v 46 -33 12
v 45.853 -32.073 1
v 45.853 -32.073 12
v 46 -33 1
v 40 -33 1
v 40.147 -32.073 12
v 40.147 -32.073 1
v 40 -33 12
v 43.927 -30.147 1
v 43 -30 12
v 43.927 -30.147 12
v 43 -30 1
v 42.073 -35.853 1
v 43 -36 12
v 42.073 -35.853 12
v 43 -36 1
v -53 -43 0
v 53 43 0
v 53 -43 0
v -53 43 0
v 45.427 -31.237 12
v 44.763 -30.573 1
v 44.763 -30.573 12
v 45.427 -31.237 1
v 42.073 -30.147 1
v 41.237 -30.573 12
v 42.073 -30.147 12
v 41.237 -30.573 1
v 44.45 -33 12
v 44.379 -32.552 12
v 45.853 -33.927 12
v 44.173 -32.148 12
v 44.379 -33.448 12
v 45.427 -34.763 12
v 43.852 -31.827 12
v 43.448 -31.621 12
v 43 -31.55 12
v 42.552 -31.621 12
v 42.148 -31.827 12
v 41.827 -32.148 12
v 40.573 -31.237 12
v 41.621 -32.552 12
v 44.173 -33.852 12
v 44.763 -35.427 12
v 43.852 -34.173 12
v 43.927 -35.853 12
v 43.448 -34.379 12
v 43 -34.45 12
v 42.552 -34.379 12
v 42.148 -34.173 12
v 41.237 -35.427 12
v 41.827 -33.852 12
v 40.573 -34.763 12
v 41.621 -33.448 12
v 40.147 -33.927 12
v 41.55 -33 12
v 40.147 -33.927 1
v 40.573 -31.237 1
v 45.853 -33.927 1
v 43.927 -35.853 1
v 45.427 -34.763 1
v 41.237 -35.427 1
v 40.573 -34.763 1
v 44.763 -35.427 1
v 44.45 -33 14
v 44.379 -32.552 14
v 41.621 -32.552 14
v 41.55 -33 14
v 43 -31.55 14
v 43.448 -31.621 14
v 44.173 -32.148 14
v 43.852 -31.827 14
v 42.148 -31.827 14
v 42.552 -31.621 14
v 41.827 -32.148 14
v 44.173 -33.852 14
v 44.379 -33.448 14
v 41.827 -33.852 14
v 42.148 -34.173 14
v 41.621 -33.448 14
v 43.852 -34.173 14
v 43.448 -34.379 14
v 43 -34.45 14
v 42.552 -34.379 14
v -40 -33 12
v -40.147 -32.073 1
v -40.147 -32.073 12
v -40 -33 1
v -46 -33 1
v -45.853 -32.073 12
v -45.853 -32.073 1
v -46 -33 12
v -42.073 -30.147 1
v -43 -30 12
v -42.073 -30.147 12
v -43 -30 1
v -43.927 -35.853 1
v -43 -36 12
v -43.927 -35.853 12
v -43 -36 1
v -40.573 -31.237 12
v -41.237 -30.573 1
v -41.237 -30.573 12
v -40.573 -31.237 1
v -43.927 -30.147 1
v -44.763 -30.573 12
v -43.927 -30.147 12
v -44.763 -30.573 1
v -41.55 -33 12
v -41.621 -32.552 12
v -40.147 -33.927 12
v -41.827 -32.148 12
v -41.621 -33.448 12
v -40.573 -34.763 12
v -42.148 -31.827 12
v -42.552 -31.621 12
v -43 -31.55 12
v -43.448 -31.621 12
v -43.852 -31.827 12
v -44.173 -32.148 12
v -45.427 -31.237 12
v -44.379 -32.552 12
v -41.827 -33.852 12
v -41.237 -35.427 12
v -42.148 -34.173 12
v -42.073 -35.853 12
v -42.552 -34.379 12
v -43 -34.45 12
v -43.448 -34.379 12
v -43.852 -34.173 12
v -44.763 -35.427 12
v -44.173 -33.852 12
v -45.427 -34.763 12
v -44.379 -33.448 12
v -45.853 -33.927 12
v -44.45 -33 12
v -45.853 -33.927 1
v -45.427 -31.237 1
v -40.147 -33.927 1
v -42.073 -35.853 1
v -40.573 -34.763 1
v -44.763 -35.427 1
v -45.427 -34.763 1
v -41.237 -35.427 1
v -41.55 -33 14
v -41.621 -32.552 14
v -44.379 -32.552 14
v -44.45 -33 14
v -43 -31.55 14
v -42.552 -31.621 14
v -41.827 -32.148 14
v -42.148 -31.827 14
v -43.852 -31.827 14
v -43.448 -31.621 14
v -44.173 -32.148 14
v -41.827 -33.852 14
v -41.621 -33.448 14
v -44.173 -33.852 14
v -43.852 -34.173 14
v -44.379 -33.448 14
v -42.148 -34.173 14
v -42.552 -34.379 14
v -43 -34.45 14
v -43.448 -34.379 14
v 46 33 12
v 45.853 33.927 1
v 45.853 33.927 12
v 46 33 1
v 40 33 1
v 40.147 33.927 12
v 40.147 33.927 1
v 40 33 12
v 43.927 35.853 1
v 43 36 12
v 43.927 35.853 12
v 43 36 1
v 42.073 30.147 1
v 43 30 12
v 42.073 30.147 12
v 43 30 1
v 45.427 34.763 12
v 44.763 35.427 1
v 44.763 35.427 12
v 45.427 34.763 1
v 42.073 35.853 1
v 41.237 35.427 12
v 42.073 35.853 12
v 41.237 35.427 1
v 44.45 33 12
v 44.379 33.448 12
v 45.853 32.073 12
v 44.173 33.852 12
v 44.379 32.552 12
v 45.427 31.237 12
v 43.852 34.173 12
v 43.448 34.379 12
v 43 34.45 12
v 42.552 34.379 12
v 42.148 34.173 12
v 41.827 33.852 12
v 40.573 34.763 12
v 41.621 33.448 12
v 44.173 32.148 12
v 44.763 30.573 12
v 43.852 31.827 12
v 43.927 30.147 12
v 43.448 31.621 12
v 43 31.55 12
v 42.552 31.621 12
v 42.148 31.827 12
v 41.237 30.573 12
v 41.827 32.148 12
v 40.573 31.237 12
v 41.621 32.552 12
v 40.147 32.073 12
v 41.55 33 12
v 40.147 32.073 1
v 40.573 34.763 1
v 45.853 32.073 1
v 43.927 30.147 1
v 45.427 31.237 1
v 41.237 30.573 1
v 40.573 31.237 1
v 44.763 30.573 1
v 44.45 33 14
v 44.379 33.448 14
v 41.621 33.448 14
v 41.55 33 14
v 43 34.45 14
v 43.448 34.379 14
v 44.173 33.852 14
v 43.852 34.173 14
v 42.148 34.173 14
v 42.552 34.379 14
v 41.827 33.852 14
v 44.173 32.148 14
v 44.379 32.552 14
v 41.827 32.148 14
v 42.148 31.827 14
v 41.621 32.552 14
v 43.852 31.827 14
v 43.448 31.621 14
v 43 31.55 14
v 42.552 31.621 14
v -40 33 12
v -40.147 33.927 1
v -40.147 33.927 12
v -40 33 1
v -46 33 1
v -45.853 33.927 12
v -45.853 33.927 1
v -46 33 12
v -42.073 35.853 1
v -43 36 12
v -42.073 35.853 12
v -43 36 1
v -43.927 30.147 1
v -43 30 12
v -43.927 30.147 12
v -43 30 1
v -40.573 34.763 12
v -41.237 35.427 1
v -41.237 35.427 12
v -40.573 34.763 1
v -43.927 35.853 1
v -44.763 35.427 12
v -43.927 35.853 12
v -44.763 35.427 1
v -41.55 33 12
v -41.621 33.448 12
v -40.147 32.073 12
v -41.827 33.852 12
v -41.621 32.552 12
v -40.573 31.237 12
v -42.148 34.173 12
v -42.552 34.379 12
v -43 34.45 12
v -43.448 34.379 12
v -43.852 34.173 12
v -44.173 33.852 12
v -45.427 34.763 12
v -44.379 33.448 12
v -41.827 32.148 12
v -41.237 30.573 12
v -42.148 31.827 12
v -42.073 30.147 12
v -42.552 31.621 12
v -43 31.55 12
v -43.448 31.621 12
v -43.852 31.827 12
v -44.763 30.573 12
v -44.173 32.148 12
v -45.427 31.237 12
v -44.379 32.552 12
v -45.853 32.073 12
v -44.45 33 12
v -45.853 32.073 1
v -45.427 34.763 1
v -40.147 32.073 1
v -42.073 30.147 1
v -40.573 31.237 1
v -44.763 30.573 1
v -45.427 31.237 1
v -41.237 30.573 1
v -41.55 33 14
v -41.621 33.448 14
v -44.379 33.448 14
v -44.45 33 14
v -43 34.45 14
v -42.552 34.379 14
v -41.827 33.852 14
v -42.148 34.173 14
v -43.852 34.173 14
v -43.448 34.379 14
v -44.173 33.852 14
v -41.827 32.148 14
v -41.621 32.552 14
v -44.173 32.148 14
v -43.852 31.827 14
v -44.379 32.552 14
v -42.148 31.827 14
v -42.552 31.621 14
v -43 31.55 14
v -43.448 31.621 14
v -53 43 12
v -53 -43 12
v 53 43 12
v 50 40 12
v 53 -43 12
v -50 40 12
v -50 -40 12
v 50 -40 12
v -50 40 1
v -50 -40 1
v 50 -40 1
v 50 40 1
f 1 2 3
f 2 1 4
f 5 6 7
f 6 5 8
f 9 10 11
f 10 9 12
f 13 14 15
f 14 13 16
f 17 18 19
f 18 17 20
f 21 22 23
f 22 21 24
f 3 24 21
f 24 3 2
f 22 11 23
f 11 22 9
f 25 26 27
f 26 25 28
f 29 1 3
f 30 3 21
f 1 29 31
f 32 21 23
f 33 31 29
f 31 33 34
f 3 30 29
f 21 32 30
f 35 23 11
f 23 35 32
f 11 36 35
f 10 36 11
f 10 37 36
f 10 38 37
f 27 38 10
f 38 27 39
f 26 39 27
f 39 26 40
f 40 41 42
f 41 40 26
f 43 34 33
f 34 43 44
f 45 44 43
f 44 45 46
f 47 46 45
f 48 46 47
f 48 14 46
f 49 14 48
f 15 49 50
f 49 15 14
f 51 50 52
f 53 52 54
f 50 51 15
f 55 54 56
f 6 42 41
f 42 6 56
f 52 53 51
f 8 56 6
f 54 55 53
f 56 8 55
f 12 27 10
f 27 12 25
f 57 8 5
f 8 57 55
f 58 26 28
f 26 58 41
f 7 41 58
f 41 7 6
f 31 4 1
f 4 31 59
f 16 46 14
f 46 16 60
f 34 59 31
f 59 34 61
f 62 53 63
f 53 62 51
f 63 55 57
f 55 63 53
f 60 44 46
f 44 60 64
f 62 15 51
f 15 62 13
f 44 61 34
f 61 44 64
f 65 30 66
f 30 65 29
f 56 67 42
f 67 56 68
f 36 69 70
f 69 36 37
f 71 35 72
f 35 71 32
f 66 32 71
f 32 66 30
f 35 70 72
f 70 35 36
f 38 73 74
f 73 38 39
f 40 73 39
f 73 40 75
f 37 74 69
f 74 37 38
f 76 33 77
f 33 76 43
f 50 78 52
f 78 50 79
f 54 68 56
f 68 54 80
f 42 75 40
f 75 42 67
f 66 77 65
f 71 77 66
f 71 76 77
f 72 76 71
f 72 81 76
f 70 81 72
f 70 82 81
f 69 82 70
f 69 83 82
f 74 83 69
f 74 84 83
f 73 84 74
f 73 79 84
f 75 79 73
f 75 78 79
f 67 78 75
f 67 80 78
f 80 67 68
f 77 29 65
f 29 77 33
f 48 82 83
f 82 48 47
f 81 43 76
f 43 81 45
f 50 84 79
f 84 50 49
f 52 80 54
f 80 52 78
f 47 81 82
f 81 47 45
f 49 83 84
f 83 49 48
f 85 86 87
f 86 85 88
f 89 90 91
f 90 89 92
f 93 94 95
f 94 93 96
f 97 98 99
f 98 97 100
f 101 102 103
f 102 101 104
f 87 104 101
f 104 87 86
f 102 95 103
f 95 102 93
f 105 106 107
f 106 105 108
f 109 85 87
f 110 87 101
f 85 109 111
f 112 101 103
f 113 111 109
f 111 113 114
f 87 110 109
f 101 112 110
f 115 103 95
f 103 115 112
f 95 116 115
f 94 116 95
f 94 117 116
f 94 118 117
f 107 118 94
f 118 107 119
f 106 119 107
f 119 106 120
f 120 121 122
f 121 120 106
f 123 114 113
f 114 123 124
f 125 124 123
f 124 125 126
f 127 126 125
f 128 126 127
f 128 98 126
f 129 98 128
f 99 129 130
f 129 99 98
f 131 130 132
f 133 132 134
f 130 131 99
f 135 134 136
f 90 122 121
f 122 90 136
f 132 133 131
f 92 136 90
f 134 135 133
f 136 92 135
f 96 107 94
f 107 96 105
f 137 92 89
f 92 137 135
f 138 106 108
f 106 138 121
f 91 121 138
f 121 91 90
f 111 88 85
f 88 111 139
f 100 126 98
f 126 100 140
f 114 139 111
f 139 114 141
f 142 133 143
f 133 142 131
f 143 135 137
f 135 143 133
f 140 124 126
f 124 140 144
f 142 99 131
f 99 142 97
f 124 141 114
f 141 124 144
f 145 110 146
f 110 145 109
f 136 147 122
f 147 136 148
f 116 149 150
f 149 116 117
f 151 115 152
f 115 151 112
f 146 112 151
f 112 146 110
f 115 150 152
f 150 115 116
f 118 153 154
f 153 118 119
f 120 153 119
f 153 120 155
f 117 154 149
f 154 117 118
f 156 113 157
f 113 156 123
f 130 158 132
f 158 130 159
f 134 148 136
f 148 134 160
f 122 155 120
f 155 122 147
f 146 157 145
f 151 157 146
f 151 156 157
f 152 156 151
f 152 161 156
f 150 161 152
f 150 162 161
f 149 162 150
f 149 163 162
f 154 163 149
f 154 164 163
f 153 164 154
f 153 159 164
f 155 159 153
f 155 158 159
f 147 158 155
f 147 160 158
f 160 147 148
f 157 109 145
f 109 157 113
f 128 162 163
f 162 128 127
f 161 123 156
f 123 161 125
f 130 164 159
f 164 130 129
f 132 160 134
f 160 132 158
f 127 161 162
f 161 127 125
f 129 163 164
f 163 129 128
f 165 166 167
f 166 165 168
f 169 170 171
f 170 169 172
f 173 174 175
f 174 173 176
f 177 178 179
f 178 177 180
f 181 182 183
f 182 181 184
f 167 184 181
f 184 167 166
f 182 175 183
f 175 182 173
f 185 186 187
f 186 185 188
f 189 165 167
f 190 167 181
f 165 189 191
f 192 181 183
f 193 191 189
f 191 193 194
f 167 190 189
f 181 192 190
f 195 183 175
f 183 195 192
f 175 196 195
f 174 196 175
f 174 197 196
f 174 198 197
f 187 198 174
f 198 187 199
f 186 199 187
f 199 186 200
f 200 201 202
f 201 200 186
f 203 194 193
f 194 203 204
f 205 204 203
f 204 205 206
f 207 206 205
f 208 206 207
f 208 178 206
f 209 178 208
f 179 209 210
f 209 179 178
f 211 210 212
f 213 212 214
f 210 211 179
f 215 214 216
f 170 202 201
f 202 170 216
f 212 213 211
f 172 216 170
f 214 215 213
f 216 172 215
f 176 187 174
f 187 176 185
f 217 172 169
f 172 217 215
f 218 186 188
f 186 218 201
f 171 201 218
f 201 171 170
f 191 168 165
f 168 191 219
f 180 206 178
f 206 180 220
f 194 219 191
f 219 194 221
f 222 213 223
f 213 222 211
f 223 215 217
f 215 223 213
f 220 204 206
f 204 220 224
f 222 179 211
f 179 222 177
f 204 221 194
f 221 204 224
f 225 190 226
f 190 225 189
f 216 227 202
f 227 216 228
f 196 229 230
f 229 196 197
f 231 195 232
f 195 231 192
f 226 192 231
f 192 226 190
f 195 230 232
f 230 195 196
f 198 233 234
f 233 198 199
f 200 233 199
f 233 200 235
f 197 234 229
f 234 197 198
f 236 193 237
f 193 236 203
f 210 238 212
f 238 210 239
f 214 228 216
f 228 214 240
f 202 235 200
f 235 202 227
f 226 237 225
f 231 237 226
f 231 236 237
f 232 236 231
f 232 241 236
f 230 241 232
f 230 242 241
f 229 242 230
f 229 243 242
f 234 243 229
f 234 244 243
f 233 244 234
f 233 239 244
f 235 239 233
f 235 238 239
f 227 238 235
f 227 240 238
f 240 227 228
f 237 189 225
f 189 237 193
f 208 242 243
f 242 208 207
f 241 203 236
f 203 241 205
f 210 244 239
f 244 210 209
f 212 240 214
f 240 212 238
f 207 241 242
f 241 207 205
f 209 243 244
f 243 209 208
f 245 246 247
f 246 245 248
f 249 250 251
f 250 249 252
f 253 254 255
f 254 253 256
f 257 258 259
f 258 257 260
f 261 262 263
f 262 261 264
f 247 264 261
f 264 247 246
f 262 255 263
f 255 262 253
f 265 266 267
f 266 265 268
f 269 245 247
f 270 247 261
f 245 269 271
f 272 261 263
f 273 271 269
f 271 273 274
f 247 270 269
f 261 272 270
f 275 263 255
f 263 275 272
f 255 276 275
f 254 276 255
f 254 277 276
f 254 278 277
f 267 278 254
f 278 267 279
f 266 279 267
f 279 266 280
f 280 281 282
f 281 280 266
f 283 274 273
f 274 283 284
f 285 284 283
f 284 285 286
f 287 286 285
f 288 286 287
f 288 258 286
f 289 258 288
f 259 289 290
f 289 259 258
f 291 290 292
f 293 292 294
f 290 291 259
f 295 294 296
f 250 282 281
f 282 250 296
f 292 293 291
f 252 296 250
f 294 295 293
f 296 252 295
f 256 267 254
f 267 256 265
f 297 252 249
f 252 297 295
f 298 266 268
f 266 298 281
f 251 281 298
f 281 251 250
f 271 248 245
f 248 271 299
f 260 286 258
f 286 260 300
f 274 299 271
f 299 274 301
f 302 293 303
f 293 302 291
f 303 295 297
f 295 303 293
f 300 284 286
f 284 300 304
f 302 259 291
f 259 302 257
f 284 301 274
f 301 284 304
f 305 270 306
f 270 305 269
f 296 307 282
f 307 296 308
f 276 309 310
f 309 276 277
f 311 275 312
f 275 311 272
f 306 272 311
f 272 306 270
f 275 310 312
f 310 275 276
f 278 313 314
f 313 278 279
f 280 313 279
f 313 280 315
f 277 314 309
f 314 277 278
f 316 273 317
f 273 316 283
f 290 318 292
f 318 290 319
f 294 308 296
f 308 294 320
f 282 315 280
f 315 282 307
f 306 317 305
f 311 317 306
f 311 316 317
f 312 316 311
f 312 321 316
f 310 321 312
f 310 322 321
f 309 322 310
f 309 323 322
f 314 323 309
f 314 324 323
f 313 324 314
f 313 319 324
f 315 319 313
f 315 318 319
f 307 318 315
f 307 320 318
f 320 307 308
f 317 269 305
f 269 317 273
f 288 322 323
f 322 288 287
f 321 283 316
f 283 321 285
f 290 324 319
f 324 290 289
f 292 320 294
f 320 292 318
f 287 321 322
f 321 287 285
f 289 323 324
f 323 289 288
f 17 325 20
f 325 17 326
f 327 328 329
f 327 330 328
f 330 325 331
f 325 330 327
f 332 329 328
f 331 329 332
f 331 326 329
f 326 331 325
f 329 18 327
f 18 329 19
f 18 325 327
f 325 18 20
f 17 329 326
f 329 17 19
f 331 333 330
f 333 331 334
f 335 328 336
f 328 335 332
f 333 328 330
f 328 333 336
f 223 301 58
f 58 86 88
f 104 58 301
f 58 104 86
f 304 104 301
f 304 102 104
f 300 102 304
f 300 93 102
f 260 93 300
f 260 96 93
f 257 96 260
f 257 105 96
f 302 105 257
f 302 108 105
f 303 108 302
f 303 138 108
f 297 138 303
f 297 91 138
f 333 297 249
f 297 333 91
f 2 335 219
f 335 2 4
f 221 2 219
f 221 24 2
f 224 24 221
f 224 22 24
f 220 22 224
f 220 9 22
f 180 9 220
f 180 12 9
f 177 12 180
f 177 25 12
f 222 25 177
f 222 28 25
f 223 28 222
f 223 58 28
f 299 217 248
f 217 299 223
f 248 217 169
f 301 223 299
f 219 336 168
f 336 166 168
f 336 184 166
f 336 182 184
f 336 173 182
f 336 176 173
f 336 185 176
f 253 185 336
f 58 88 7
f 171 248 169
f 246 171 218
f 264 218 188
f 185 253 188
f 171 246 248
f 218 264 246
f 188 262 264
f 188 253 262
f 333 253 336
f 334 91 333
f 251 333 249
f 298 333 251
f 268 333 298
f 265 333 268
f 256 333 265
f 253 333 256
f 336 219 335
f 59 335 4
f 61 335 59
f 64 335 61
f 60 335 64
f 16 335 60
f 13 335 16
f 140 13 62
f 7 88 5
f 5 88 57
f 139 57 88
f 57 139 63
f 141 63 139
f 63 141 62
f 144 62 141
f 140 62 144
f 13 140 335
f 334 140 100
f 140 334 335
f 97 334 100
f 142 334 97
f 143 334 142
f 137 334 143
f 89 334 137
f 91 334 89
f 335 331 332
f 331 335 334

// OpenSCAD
boardx=98;
boardy=78;
boardz=1.6;
$fn=20;



module pcbpin(){
cylinder(d=6,h=12,center=true);
    translate([0,0,7]){
cylinder(d=2.9,h=2,center=true);
    }//translate
}//module



module board(){
    difference(){
cube([boardx,boardy,boardz],center=true);
union(){
translate([boardx/2-6,boardy/2-6,0]){
cylinder(d=3.1,h=2,center=true);  
}//translate

translate([-boardx/2+6,boardy/2-6,0]){
cylinder(d=3.1,h=2,center=true);  
}//translate

translate([-boardx/2+6,-boardy/2+6,0]){
cylinder(d=3.1,h=2,center=true);  
}//translate

translate([boardx/2-6,-boardy/2+6,0]){
cylinder(d=3.1,h=2,center=true);  
}//translate
}//union
}//difference
}//module

module box(){
    difference(){
    cube([boardx+8,boardy+8,12],center=true);
    translate([0,0,1]){
    cube([boardx+2,boardy+2,12],center=true);
    }//translate
}//difference





    }//module


%board();
translate([boardx/2-6,-boardy/2+6,6]){
pcbpin();
    }//translate

translate([-boardx/2+6,-boardy/2+6,6]){
pcbpin();
    }//translate
    
translate([boardx/2-6,boardy/2-6,6]){
pcbpin();
    }//translate
    
translate([-boardx/2+6,boardy/2-6,6]){
pcbpin();
    }//translate
translate([0,0,6]){
box();
}
//}
